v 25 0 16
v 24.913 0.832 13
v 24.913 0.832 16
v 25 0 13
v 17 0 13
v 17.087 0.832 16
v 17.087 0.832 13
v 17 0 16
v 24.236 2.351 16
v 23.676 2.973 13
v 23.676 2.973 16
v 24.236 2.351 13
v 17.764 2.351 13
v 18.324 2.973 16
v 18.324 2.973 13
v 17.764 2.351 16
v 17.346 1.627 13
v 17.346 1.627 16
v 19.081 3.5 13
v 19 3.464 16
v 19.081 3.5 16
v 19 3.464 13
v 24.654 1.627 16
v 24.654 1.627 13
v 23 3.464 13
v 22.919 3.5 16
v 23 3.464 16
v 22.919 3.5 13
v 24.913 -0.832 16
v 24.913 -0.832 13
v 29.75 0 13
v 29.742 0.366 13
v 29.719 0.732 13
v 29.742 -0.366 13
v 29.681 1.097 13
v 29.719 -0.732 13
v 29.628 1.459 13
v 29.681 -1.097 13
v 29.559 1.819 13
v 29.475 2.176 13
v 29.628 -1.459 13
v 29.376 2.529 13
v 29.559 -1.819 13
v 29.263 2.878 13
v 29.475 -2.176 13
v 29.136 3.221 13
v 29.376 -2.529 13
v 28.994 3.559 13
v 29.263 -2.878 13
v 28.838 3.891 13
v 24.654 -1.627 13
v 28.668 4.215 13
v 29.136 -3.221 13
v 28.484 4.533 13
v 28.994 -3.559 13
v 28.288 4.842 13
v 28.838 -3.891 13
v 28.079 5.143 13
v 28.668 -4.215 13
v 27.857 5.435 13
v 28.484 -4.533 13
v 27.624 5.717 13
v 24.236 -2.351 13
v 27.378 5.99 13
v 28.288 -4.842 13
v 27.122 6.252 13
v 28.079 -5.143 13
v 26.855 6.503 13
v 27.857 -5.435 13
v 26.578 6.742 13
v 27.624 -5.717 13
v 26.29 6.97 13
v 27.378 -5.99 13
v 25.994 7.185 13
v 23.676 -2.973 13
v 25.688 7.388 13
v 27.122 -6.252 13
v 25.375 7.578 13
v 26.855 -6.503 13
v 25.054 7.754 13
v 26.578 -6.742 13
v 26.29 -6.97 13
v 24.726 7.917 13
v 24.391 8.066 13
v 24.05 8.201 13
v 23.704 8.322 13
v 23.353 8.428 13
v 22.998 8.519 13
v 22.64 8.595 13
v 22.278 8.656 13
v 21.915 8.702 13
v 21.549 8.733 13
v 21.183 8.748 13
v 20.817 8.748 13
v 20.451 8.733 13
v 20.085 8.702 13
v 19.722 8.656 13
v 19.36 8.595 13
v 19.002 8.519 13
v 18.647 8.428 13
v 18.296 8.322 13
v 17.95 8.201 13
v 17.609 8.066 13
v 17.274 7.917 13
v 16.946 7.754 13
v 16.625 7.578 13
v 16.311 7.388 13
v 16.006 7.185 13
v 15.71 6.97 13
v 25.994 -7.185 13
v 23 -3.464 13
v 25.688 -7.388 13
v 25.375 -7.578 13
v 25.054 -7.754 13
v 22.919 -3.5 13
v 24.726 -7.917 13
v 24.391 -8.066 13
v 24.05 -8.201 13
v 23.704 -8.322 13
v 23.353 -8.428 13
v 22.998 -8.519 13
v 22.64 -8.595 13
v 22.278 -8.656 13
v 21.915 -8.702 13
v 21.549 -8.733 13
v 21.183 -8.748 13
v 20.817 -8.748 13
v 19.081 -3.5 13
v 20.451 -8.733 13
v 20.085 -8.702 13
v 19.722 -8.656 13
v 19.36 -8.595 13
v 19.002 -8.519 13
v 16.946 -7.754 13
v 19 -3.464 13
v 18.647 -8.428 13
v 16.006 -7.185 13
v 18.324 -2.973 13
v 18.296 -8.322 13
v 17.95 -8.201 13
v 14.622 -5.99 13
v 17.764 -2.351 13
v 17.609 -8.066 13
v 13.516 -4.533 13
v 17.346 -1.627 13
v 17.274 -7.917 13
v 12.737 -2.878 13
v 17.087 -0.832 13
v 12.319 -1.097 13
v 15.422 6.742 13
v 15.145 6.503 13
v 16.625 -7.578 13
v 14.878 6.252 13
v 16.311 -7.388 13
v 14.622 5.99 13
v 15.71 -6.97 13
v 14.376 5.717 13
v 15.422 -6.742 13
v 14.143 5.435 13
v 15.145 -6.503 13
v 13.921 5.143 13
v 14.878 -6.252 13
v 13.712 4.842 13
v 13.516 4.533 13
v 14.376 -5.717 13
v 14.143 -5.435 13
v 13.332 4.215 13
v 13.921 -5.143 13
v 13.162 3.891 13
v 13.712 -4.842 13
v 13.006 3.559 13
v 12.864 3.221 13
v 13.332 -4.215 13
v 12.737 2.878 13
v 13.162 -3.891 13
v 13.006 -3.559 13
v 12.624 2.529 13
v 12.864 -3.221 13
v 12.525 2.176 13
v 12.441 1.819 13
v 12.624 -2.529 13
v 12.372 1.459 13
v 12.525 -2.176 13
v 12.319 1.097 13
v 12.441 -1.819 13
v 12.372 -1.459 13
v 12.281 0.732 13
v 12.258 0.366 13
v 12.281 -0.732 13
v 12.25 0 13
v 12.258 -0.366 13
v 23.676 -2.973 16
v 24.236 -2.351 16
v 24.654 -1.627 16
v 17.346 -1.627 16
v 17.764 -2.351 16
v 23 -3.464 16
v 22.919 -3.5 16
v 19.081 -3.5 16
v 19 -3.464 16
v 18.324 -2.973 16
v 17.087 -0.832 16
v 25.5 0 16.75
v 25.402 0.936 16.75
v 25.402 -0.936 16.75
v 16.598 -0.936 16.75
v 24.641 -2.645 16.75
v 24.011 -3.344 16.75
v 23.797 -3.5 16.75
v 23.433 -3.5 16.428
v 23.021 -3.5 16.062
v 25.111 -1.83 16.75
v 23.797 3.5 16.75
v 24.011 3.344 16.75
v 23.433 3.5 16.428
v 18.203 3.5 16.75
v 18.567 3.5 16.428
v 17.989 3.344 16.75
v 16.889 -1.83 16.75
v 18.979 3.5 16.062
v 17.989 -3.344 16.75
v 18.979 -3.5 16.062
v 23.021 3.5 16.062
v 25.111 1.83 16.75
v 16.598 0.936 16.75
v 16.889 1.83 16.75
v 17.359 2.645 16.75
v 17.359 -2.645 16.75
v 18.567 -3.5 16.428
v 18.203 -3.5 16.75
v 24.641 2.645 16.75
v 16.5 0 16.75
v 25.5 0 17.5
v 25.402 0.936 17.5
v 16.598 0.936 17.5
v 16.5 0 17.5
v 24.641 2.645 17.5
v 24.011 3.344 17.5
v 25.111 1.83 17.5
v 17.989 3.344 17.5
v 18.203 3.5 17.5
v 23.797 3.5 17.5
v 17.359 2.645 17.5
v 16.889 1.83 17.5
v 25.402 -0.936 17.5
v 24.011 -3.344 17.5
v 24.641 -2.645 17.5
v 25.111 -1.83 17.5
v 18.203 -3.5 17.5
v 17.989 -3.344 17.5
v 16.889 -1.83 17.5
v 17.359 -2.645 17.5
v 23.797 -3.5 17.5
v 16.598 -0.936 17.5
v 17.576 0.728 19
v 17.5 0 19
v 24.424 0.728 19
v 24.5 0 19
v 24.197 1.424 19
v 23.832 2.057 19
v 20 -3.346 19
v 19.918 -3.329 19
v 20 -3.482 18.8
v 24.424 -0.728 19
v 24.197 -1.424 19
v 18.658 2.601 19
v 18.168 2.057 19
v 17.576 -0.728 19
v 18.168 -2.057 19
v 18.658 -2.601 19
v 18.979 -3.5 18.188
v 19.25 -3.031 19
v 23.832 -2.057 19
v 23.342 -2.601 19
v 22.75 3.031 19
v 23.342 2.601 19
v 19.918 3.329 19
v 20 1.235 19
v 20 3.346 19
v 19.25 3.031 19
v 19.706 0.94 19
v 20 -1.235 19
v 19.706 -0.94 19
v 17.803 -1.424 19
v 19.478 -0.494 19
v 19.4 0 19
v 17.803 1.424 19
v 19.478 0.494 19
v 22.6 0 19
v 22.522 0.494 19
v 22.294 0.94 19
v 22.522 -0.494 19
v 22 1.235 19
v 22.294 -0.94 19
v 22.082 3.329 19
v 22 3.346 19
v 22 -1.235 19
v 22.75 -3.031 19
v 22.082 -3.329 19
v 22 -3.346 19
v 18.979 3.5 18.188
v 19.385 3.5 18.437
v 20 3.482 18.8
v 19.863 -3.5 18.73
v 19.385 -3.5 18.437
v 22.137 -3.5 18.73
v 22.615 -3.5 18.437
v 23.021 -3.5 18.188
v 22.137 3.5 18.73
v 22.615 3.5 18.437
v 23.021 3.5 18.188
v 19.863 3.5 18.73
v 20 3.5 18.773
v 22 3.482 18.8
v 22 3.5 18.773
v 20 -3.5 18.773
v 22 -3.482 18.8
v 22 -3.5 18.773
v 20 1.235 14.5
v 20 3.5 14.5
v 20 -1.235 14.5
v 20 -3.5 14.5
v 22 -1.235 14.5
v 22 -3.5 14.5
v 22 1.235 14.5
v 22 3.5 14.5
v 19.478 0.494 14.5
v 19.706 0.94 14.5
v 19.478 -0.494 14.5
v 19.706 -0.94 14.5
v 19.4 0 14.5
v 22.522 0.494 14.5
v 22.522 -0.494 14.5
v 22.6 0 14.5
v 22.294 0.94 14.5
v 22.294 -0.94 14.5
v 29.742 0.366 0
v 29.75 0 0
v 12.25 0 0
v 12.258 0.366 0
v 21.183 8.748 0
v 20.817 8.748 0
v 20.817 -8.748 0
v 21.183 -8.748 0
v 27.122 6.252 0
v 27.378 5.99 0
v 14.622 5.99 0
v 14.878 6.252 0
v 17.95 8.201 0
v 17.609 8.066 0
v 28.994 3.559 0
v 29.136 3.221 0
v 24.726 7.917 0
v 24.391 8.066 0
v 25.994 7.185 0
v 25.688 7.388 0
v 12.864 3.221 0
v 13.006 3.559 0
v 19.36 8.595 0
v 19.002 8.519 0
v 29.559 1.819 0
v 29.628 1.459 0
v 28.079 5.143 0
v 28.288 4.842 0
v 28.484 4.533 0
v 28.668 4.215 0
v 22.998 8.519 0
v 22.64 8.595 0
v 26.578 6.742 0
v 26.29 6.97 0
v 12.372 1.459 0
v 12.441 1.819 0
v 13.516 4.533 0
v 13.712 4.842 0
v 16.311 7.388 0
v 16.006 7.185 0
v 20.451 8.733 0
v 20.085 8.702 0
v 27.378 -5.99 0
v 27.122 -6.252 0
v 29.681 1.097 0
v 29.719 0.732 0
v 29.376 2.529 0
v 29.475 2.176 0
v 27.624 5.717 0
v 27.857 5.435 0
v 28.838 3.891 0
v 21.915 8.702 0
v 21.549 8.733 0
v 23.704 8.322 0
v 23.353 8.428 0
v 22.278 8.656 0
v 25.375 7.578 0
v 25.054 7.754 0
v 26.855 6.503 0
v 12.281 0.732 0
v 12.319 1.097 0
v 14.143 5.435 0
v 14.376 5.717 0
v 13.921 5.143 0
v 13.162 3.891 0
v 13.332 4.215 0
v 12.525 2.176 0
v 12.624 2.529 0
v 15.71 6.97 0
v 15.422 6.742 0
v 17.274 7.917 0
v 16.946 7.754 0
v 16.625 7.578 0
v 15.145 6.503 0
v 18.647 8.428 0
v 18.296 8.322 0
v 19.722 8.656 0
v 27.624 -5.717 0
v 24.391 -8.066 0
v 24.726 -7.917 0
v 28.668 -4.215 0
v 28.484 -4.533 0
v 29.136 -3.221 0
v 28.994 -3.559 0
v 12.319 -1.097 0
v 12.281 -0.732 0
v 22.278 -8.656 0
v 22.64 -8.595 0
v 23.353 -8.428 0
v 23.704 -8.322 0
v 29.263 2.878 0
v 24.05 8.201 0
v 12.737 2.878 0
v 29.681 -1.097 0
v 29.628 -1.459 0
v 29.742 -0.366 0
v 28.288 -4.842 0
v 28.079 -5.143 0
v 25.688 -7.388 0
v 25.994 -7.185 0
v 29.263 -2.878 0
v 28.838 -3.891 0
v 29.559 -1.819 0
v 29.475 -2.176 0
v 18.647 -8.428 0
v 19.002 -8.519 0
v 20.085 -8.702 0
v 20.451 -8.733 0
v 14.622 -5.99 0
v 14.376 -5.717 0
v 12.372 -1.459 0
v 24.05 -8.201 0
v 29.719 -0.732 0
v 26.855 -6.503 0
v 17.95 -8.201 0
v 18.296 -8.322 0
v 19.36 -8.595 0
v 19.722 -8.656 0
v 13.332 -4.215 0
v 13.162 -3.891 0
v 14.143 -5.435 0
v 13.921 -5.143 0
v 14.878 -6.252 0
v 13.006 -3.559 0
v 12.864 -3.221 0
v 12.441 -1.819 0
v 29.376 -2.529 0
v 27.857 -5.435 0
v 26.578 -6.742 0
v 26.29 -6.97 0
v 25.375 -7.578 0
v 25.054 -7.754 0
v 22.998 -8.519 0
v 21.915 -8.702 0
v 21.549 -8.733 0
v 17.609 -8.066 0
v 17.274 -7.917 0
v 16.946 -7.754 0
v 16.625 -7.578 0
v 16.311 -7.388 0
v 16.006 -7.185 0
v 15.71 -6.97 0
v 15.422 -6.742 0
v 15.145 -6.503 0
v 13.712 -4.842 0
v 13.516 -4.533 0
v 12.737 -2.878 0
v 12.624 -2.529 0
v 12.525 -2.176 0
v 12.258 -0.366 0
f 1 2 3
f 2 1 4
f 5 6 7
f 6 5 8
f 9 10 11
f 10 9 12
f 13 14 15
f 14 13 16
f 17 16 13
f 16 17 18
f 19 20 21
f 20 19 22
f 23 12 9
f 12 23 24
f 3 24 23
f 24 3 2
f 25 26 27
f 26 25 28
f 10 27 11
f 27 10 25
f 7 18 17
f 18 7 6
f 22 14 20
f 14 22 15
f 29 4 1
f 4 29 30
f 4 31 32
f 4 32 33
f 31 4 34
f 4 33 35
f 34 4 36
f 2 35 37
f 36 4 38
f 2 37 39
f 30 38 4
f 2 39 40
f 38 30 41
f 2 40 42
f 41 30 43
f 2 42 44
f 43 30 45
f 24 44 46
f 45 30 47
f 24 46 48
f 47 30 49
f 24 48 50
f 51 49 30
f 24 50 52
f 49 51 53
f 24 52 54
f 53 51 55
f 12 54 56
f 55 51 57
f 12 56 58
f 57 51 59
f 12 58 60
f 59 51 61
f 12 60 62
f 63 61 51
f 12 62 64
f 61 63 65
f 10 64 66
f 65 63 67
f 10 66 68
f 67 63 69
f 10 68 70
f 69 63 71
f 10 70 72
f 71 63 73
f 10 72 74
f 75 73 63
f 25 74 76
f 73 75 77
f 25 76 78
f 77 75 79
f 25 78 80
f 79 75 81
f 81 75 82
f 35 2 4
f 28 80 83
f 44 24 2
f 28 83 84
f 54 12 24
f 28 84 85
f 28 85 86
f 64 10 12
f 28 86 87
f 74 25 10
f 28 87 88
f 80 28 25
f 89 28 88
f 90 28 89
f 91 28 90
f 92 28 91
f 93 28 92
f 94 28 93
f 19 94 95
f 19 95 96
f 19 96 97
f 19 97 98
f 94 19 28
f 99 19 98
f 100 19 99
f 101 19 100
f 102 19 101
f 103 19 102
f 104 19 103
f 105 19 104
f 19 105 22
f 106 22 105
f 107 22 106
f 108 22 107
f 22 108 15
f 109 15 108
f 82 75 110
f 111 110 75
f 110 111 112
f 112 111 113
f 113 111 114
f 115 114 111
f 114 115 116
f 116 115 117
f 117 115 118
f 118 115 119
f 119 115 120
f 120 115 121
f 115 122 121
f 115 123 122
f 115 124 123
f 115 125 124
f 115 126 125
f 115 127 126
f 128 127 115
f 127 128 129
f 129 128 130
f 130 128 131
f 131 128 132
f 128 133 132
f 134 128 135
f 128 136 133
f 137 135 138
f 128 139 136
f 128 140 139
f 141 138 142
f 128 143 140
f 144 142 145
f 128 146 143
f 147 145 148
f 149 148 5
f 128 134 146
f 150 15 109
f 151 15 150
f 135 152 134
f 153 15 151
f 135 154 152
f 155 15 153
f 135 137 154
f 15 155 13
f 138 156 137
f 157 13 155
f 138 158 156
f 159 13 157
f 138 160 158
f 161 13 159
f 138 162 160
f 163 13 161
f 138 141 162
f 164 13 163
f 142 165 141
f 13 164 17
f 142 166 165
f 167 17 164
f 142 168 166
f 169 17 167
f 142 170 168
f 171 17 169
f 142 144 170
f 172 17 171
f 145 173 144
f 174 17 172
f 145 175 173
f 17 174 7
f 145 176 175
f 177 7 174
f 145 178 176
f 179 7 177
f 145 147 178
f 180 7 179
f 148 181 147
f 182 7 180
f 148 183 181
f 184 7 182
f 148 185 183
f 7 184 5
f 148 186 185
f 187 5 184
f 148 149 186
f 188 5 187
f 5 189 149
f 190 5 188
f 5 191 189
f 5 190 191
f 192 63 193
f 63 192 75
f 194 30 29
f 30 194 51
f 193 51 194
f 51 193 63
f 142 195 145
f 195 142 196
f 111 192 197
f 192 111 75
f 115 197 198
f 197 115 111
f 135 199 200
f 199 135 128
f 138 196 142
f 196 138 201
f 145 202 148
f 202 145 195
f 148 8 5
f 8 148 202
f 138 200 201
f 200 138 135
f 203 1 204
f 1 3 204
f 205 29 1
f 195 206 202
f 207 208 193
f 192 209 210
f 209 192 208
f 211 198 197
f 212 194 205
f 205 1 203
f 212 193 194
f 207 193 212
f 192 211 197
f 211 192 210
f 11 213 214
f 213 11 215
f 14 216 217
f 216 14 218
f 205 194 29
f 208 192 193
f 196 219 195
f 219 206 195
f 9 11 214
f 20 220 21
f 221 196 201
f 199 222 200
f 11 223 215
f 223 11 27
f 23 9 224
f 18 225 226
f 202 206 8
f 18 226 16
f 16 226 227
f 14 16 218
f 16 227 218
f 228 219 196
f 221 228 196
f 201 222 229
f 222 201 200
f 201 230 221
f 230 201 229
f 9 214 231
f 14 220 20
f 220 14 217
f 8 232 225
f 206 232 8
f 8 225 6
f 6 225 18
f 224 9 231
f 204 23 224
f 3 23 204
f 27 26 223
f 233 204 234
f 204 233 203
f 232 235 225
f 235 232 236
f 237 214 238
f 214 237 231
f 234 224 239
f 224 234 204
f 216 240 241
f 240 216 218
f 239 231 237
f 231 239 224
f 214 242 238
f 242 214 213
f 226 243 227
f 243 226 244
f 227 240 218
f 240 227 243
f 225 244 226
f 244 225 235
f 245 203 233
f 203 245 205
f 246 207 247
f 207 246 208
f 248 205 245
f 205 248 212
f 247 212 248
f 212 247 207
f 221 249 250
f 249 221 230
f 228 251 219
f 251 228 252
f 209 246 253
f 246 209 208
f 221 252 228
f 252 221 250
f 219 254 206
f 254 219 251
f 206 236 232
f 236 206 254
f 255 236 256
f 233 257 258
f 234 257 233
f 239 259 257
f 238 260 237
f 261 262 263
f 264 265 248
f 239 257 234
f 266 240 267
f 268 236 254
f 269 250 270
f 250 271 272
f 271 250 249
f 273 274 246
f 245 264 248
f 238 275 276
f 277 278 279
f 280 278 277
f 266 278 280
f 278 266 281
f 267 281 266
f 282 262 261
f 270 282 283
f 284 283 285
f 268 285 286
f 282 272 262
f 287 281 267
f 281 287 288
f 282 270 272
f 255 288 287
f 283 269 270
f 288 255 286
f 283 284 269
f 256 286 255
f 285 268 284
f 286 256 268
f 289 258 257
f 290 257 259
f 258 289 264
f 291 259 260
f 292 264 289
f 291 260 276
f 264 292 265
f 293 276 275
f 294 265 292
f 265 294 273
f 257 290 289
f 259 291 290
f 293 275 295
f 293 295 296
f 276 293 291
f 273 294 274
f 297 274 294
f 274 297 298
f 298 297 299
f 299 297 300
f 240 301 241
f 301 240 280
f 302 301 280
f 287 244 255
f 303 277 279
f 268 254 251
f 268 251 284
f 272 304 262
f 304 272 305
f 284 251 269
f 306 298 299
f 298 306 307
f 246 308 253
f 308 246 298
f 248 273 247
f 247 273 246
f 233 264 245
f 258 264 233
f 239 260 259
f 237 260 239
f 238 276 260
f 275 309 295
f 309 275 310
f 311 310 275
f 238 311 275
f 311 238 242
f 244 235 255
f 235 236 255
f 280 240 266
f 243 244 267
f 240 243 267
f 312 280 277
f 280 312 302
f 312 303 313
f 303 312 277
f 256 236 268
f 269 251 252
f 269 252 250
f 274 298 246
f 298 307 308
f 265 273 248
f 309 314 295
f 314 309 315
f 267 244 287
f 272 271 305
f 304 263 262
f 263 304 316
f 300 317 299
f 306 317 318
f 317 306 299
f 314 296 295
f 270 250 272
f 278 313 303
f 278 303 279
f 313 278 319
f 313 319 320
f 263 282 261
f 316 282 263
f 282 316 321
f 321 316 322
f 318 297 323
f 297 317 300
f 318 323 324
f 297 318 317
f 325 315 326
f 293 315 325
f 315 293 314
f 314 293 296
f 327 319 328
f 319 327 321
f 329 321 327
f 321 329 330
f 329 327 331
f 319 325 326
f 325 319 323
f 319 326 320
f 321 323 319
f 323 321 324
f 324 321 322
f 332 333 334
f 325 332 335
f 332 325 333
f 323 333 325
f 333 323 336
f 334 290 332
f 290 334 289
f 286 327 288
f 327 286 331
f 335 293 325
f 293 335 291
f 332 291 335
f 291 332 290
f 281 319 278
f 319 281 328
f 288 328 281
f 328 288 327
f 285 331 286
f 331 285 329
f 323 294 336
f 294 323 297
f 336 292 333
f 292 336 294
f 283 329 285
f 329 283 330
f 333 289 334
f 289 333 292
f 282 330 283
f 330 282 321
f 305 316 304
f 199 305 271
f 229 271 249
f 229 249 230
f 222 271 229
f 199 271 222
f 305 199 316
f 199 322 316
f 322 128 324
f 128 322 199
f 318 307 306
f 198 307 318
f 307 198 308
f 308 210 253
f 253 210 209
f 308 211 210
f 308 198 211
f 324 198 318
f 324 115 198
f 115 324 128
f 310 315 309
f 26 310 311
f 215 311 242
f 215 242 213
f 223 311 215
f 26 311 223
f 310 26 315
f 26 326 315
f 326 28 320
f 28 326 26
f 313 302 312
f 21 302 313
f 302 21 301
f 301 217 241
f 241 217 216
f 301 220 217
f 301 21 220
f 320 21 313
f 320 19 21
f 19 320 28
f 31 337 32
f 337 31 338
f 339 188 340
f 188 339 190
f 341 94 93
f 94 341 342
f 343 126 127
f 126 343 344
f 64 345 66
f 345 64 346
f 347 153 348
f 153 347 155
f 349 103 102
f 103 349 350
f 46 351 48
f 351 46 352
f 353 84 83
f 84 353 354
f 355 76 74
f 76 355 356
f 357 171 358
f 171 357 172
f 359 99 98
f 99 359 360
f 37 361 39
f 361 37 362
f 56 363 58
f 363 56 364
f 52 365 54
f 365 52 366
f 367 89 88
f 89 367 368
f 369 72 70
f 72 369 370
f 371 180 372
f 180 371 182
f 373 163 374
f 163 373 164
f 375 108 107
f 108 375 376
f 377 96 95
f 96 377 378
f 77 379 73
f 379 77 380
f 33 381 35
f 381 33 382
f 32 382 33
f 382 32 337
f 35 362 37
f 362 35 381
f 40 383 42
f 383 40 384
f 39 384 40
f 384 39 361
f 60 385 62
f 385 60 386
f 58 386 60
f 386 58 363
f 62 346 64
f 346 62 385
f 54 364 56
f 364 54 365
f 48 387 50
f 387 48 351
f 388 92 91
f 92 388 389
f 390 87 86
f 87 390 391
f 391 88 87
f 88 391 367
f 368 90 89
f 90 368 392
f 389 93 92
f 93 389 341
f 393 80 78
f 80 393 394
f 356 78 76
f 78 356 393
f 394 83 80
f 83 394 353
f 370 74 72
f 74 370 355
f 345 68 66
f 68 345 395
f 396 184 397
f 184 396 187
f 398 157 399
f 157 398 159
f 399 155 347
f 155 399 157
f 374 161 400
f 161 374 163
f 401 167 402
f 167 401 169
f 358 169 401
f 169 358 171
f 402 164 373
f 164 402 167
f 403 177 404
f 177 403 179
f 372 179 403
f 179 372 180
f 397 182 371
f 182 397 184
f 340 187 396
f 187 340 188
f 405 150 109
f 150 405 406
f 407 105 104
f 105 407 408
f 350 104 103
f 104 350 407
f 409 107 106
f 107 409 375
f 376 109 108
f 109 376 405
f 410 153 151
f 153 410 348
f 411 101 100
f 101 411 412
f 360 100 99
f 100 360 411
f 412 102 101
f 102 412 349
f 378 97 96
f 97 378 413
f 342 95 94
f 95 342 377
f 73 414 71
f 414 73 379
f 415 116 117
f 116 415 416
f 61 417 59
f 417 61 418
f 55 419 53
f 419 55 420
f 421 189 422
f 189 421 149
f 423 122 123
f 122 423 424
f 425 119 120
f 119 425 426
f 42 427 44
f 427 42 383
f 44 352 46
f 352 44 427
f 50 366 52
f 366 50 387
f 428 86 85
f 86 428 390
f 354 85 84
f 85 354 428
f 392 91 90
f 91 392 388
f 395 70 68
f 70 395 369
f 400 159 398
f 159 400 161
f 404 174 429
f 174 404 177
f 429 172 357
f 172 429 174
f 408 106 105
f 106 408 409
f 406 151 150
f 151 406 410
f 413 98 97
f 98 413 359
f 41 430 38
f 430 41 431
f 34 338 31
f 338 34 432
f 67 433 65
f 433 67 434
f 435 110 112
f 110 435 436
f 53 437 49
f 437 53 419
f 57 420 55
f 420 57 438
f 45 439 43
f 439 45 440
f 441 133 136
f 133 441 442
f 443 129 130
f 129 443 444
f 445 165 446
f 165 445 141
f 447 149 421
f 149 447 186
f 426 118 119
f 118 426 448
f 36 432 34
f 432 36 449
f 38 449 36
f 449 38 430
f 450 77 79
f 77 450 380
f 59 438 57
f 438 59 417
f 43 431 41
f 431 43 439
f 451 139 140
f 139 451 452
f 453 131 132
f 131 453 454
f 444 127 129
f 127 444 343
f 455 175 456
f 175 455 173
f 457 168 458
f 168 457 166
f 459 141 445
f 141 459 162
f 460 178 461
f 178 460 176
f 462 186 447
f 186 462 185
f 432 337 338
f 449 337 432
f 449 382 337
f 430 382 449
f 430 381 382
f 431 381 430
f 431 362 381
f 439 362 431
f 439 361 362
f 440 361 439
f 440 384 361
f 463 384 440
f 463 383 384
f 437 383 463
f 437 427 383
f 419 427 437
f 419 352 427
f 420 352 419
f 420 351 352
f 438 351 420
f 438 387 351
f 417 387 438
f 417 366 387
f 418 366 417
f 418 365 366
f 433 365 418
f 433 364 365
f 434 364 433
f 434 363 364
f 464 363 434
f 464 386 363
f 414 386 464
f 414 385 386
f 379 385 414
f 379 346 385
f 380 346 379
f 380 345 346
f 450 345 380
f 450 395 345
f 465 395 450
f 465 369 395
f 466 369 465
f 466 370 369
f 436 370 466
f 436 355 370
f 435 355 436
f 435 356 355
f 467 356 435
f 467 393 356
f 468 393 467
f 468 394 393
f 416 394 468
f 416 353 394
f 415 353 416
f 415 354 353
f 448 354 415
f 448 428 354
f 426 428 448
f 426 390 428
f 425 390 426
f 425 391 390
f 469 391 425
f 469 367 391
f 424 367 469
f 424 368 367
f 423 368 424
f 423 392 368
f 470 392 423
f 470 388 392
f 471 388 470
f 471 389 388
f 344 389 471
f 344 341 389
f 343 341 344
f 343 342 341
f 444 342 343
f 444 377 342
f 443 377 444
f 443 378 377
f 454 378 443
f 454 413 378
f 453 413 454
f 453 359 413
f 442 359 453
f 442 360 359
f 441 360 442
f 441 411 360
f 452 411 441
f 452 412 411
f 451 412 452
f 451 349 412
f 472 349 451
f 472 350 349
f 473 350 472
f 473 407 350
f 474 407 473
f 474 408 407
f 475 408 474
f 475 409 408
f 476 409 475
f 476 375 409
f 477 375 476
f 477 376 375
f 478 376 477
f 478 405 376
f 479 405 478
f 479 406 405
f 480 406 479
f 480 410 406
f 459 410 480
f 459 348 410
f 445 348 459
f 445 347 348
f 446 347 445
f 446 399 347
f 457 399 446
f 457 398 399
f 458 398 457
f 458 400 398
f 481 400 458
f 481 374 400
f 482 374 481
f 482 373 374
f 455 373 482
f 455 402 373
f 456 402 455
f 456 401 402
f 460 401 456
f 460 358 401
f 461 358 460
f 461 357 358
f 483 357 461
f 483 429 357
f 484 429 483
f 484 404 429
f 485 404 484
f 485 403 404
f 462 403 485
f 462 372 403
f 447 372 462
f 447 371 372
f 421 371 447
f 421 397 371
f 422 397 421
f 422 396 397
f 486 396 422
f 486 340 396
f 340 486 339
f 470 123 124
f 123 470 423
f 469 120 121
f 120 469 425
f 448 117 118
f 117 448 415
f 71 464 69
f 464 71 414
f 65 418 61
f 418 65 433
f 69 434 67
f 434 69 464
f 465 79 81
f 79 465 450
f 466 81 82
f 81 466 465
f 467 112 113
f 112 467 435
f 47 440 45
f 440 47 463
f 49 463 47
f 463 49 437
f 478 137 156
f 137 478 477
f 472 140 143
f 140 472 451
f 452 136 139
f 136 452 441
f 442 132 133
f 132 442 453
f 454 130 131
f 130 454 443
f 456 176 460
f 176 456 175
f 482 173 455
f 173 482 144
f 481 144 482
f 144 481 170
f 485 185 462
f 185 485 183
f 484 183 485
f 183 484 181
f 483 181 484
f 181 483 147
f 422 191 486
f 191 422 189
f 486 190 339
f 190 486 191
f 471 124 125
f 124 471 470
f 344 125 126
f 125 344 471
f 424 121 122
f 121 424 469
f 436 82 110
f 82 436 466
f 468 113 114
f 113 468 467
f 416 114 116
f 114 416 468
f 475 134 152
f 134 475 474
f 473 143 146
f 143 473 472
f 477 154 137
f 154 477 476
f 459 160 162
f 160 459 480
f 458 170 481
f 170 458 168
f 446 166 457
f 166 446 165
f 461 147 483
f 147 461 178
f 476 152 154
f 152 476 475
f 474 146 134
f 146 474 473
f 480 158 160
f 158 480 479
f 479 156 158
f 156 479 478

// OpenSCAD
// Platinenhalter h=6mm

$fn=150;
module pins() 
{
//                            height !!!
  translate([21, 0, 0]) pintack(h=6);
}
pins();


//----------------------------------------------------









module pin(h=10, r=4, lh=3, lt=1, side=false) {
  // h = shaft height
  // r = shaft radius
  // lh = lip height
  // lt = lip thickness
  // side = set to true if you want it printed horizontally

  if (side) {
    pin_horizontal(h, r, lh, lt);
  } else {
    pin_vertical(h, r, lh, lt);
  }
}

module pintack(h=10, r=4, lh=3, lt=1, bh=13, br=8.75) {
  // bh = base_height
  // br = base_radius
  
  union() {
    cylinder(h=bh, r=br);
    translate([0, 0, bh]) pin(h, r, lh, lt);
  }
}




module pin_vertical(h=10, r=4, lh=3, lt=1) {
  // h = shaft height
  // r = shaft radius
  // lh = lip height
  // lt = lip thickness

  difference() {
    pin_solid(h, r, lh, lt);
    
    // center cut
    translate([-r*0.5/2, -(r*2+lt*2)/2, h/4]) cube([r*0.5, r*2+lt*2, h]);
    translate([0, 0, h/4]) cylinder(h=h+lh, r=r/2.5, $fn=20);
  
    // side cuts
    translate([-r*2, -lt-r*1.125, -1]) cube([r*4, lt*2, h+2]);
    translate([-r*2, -lt+r*1.125, -1]) cube([r*4, lt*2, h+2]);
  }
}

// call pin with side=true instead of this
module pin_horizontal(h=10, r=4, lh=3, lt=1) {
  // h = shaft height
  // r = shaft radius
  // lh = lip height
  // lt = lip thickness
  translate([0, h/2, r*1.125-lt]) rotate([90, 0, 0]) pin_vertical(h, r, lh, lt);
}


module pin_solid(h=10, r=4, lh=3, lt=1) {
  union() {
    // shaft
    cylinder(h=h-lh, r=r, $fn=30);
    

    translate([0, 0, h-lh]) cylinder(h=lh*0.25, r1=r, r2=r+(lt/2), $fn=30);
    translate([0, 0, h-lh+lh*0.25]) cylinder(h=lh*0.25, r=r+(lt/2), $fn=30);    
    translate([0, 0, h-lh+lh*0.50]) cylinder(h=lh*0.50, r1=r+(lt/2), r2=r-(lt/2), $fn=30);    


  }
}
